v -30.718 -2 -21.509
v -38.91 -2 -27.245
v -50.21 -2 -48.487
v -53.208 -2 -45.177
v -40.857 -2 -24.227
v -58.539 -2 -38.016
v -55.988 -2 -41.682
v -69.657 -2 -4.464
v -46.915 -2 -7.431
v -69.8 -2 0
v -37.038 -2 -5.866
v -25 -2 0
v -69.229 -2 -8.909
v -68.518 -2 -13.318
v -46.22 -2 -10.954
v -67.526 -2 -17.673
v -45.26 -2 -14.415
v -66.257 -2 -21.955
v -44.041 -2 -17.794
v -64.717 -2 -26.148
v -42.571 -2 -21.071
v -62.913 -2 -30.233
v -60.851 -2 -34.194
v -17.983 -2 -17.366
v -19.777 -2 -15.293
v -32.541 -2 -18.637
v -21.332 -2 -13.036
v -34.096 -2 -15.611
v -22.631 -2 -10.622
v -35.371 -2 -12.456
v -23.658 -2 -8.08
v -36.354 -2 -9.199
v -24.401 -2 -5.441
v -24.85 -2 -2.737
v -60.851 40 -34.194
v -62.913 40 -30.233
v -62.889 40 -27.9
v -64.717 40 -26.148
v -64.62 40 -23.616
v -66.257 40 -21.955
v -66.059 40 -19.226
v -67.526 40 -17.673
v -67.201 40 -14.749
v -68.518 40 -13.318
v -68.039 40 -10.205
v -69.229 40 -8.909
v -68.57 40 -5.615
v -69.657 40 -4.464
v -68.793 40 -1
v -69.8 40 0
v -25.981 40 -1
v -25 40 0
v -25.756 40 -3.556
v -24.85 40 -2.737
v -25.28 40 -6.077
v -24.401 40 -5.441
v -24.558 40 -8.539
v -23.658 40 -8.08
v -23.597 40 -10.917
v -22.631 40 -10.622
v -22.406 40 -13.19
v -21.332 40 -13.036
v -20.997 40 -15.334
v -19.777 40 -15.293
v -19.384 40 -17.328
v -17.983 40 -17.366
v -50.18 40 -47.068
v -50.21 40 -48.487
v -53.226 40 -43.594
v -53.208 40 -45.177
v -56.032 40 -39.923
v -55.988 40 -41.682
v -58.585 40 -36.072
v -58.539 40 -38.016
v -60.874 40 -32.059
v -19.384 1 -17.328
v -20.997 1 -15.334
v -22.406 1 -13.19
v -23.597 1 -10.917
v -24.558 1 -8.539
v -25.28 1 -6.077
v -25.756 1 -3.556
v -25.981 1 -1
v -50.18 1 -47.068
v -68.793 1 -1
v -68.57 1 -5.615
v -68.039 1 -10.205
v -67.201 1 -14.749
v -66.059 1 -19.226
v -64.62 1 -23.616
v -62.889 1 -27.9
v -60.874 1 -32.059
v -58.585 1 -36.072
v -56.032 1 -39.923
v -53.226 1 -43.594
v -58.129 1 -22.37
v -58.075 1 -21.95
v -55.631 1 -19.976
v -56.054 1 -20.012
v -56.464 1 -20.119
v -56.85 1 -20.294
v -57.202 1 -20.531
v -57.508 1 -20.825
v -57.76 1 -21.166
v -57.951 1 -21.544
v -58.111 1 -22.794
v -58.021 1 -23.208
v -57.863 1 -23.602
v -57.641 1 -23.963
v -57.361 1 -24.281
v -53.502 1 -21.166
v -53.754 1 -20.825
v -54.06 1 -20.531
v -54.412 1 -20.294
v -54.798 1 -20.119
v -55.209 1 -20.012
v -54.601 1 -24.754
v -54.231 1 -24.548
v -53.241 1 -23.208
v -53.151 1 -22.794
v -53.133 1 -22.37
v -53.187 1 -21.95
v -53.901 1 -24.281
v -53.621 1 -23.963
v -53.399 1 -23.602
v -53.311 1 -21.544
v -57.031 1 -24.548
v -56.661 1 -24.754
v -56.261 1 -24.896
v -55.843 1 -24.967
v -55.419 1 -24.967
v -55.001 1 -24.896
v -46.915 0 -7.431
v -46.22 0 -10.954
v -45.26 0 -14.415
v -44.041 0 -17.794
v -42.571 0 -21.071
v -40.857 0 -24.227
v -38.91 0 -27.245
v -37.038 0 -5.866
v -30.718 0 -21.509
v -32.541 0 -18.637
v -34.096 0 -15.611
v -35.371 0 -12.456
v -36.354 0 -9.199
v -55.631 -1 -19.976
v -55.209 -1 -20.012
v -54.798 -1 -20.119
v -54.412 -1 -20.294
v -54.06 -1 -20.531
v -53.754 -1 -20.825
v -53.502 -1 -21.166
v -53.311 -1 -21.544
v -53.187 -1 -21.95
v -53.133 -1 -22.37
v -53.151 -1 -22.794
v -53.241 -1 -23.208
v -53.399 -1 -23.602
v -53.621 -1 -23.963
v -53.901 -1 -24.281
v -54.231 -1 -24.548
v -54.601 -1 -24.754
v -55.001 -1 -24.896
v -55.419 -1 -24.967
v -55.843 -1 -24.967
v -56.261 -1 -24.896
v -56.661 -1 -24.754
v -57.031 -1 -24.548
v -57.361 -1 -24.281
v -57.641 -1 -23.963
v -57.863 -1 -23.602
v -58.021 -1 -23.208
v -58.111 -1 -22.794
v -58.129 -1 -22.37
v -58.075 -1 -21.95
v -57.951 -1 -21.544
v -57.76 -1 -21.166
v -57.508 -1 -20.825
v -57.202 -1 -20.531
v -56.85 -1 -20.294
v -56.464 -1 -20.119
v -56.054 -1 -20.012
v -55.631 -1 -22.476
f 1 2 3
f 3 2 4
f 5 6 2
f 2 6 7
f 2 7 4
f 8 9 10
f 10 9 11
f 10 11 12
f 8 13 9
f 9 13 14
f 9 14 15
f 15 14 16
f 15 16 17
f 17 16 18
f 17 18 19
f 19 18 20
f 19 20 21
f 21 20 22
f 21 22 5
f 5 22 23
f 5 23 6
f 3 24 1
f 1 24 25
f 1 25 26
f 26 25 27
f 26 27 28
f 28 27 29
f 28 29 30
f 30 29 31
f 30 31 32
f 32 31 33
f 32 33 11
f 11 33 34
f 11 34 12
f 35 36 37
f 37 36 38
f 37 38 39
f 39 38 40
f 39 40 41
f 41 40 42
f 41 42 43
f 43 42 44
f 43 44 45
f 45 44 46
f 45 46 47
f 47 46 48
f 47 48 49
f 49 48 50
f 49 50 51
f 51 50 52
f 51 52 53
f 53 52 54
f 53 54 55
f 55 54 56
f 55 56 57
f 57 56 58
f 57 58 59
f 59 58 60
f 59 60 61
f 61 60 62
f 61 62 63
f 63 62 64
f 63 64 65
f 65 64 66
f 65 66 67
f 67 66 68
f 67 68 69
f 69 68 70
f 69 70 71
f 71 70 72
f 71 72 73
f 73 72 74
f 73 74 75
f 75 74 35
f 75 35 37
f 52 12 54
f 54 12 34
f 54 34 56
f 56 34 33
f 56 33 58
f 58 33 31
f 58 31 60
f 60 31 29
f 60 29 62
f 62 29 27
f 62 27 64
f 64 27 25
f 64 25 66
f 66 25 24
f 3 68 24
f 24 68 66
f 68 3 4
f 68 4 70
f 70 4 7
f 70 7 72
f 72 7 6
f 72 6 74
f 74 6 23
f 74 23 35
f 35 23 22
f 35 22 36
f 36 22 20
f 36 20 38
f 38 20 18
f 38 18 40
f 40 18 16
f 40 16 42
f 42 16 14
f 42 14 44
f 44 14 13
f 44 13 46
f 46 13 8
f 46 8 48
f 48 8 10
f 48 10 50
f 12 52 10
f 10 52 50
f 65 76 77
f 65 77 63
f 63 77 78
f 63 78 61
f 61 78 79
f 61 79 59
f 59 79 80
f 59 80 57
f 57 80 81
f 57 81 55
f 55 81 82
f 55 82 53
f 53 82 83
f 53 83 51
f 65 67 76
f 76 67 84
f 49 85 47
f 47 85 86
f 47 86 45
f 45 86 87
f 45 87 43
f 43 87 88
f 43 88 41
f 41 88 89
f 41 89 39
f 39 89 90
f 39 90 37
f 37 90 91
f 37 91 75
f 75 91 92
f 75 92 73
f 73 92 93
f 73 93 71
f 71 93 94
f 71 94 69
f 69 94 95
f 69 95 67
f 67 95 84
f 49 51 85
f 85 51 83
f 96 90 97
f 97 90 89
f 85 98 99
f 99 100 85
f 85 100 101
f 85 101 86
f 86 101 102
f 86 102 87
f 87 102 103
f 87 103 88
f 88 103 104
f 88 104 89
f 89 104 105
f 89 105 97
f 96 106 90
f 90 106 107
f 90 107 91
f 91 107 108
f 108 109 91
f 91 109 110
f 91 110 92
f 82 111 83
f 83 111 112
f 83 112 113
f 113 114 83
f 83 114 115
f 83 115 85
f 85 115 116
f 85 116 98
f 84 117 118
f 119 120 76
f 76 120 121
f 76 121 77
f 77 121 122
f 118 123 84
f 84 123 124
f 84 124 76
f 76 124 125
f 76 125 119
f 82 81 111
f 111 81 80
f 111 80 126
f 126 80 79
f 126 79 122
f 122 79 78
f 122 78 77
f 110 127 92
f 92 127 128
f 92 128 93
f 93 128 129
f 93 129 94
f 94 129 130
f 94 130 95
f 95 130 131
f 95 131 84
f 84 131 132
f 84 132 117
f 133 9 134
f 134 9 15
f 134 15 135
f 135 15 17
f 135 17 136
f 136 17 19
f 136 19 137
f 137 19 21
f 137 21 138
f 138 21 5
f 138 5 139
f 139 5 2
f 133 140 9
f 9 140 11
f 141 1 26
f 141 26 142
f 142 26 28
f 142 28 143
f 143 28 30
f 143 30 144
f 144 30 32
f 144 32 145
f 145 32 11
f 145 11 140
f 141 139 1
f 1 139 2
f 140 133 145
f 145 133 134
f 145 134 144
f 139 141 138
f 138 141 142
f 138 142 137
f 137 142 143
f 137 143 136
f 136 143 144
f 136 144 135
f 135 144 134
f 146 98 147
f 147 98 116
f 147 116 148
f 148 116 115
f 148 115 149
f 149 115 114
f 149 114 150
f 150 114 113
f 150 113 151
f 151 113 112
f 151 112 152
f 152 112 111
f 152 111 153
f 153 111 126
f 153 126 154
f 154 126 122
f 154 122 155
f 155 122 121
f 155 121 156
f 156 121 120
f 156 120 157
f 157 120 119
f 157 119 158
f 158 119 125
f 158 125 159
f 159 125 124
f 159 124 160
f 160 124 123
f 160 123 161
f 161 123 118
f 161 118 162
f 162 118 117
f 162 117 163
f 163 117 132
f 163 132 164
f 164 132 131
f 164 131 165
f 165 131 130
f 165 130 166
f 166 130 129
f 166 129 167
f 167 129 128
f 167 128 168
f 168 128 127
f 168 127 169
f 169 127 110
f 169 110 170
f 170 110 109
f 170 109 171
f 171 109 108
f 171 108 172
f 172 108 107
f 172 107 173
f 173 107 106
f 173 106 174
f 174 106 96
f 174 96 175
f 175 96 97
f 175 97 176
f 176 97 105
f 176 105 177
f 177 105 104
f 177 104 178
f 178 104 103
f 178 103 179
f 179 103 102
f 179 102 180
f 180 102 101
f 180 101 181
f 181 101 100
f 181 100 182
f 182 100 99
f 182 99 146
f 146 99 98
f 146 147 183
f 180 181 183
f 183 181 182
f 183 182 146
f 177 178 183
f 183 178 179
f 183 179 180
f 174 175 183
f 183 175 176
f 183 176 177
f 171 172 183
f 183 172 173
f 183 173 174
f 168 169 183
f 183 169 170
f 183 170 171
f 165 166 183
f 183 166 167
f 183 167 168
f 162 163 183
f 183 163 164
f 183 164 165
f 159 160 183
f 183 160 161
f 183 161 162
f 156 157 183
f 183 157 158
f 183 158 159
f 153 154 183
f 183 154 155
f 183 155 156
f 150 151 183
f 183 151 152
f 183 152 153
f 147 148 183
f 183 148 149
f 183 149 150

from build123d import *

# Parameters (mm, degrees)
SALIENTE_EXTRUIR1_DEPTH = 40
VACIADO1_T              = -1
SALIENTE_EXTRUIR3_START = 2
SALIENTE_EXTRUIR3_DEPTH = 2
CORTAR_EXTRUIR1_DEPTH   = 2
CROQUIS5_R              = 2.5
CORTAR_EXTRUIR2_DEPTH   = 2


with BuildPart() as part:
    # Croquis1 → Saliente-Extruir1 (new body)
    with BuildSketch(Plane(origin=(0, 0, 0), x_dir=(1, 0, 0), z_dir=(0, 1, 0))):
        with BuildLine():
            Line((-25, 0), (-69.8, 0))
            ThreePointArc((-69.8, 0), (-64.717433049, 26.14754022), (-50.209918064, 48.487154258))
            Line((-50.209918064, 48.487154258), (-17.983495008, 17.366459261))
            ThreePointArc((-17.983495008, 17.366459261), (-23.179596364, 9.365164835), (-25, 0))
        make_face()
    extrude(amount=SALIENTE_EXTRUIR1_DEPTH)

    # Vaciado1
    vaciado1_openings = [part.faces().sort_by_distance(p)[0] for p in [
        (-46.068338787, 40, -18.61281705),
    ]]
    offset(amount=VACIADO1_T, openings=vaciado1_openings, kind=Kind.INTERSECTION)

    # Croquis4 → Saliente-Extruir3 (add)
    with BuildSketch(Plane.XZ.offset(SALIENTE_EXTRUIR3_START)):
        with BuildLine():
            Line((-25, 0), (-69.8, 0))
            ThreePointArc((-69.8, 0), (-64.717433049, -26.14754022), (-50.209918064, -48.487154258))
            Line((-50.209918064, -48.487154258), (-17.983495008, -17.366459261))
            ThreePointArc((-17.983495008, -17.366459261), (-23.179596364, -9.365164835), (-25, 0))
        make_face()
    extrude(amount=-SALIENTE_EXTRUIR3_DEPTH)

    # Croquis2 → Cortar-Extruir1 (cut)
    with BuildSketch(Plane(origin=(0, -2, 0), x_dir=(1, 0, 0), z_dir=(0, 1, 0))):
        with BuildLine():
            Line((-38.909722104, 27.244880727), (-30.718201661, 21.509116363))
            ThreePointArc((-30.718201661, 21.509116363), (-34.769394546, 14.047747253), (-37.038312772, 5.866292439))
            Line((-37.038312772, 5.866292439), (-46.915196178, 7.430637089))
            ThreePointArc((-46.915196178, 7.430637089), (-44.041233092, 17.793813187), (-38.909722104, 27.244880727))
        make_face()
    extrude(amount=CORTAR_EXTRUIR1_DEPTH, mode=Mode.SUBTRACT)

    # Croquis5 → Cortar-Extruir2 (cut)
    with BuildSketch(Plane(origin=(0, 1, 0), x_dir=(1, 0, 0), z_dir=(0, 1, 0))):
        with Locations(Location((-55.631031274, 22.476395605, 0), (0, 0, 270))):
            Circle(CROQUIS5_R)
    extrude(amount=-CORTAR_EXTRUIR2_DEPTH, mode=Mode.SUBTRACT)


solid = part.part
